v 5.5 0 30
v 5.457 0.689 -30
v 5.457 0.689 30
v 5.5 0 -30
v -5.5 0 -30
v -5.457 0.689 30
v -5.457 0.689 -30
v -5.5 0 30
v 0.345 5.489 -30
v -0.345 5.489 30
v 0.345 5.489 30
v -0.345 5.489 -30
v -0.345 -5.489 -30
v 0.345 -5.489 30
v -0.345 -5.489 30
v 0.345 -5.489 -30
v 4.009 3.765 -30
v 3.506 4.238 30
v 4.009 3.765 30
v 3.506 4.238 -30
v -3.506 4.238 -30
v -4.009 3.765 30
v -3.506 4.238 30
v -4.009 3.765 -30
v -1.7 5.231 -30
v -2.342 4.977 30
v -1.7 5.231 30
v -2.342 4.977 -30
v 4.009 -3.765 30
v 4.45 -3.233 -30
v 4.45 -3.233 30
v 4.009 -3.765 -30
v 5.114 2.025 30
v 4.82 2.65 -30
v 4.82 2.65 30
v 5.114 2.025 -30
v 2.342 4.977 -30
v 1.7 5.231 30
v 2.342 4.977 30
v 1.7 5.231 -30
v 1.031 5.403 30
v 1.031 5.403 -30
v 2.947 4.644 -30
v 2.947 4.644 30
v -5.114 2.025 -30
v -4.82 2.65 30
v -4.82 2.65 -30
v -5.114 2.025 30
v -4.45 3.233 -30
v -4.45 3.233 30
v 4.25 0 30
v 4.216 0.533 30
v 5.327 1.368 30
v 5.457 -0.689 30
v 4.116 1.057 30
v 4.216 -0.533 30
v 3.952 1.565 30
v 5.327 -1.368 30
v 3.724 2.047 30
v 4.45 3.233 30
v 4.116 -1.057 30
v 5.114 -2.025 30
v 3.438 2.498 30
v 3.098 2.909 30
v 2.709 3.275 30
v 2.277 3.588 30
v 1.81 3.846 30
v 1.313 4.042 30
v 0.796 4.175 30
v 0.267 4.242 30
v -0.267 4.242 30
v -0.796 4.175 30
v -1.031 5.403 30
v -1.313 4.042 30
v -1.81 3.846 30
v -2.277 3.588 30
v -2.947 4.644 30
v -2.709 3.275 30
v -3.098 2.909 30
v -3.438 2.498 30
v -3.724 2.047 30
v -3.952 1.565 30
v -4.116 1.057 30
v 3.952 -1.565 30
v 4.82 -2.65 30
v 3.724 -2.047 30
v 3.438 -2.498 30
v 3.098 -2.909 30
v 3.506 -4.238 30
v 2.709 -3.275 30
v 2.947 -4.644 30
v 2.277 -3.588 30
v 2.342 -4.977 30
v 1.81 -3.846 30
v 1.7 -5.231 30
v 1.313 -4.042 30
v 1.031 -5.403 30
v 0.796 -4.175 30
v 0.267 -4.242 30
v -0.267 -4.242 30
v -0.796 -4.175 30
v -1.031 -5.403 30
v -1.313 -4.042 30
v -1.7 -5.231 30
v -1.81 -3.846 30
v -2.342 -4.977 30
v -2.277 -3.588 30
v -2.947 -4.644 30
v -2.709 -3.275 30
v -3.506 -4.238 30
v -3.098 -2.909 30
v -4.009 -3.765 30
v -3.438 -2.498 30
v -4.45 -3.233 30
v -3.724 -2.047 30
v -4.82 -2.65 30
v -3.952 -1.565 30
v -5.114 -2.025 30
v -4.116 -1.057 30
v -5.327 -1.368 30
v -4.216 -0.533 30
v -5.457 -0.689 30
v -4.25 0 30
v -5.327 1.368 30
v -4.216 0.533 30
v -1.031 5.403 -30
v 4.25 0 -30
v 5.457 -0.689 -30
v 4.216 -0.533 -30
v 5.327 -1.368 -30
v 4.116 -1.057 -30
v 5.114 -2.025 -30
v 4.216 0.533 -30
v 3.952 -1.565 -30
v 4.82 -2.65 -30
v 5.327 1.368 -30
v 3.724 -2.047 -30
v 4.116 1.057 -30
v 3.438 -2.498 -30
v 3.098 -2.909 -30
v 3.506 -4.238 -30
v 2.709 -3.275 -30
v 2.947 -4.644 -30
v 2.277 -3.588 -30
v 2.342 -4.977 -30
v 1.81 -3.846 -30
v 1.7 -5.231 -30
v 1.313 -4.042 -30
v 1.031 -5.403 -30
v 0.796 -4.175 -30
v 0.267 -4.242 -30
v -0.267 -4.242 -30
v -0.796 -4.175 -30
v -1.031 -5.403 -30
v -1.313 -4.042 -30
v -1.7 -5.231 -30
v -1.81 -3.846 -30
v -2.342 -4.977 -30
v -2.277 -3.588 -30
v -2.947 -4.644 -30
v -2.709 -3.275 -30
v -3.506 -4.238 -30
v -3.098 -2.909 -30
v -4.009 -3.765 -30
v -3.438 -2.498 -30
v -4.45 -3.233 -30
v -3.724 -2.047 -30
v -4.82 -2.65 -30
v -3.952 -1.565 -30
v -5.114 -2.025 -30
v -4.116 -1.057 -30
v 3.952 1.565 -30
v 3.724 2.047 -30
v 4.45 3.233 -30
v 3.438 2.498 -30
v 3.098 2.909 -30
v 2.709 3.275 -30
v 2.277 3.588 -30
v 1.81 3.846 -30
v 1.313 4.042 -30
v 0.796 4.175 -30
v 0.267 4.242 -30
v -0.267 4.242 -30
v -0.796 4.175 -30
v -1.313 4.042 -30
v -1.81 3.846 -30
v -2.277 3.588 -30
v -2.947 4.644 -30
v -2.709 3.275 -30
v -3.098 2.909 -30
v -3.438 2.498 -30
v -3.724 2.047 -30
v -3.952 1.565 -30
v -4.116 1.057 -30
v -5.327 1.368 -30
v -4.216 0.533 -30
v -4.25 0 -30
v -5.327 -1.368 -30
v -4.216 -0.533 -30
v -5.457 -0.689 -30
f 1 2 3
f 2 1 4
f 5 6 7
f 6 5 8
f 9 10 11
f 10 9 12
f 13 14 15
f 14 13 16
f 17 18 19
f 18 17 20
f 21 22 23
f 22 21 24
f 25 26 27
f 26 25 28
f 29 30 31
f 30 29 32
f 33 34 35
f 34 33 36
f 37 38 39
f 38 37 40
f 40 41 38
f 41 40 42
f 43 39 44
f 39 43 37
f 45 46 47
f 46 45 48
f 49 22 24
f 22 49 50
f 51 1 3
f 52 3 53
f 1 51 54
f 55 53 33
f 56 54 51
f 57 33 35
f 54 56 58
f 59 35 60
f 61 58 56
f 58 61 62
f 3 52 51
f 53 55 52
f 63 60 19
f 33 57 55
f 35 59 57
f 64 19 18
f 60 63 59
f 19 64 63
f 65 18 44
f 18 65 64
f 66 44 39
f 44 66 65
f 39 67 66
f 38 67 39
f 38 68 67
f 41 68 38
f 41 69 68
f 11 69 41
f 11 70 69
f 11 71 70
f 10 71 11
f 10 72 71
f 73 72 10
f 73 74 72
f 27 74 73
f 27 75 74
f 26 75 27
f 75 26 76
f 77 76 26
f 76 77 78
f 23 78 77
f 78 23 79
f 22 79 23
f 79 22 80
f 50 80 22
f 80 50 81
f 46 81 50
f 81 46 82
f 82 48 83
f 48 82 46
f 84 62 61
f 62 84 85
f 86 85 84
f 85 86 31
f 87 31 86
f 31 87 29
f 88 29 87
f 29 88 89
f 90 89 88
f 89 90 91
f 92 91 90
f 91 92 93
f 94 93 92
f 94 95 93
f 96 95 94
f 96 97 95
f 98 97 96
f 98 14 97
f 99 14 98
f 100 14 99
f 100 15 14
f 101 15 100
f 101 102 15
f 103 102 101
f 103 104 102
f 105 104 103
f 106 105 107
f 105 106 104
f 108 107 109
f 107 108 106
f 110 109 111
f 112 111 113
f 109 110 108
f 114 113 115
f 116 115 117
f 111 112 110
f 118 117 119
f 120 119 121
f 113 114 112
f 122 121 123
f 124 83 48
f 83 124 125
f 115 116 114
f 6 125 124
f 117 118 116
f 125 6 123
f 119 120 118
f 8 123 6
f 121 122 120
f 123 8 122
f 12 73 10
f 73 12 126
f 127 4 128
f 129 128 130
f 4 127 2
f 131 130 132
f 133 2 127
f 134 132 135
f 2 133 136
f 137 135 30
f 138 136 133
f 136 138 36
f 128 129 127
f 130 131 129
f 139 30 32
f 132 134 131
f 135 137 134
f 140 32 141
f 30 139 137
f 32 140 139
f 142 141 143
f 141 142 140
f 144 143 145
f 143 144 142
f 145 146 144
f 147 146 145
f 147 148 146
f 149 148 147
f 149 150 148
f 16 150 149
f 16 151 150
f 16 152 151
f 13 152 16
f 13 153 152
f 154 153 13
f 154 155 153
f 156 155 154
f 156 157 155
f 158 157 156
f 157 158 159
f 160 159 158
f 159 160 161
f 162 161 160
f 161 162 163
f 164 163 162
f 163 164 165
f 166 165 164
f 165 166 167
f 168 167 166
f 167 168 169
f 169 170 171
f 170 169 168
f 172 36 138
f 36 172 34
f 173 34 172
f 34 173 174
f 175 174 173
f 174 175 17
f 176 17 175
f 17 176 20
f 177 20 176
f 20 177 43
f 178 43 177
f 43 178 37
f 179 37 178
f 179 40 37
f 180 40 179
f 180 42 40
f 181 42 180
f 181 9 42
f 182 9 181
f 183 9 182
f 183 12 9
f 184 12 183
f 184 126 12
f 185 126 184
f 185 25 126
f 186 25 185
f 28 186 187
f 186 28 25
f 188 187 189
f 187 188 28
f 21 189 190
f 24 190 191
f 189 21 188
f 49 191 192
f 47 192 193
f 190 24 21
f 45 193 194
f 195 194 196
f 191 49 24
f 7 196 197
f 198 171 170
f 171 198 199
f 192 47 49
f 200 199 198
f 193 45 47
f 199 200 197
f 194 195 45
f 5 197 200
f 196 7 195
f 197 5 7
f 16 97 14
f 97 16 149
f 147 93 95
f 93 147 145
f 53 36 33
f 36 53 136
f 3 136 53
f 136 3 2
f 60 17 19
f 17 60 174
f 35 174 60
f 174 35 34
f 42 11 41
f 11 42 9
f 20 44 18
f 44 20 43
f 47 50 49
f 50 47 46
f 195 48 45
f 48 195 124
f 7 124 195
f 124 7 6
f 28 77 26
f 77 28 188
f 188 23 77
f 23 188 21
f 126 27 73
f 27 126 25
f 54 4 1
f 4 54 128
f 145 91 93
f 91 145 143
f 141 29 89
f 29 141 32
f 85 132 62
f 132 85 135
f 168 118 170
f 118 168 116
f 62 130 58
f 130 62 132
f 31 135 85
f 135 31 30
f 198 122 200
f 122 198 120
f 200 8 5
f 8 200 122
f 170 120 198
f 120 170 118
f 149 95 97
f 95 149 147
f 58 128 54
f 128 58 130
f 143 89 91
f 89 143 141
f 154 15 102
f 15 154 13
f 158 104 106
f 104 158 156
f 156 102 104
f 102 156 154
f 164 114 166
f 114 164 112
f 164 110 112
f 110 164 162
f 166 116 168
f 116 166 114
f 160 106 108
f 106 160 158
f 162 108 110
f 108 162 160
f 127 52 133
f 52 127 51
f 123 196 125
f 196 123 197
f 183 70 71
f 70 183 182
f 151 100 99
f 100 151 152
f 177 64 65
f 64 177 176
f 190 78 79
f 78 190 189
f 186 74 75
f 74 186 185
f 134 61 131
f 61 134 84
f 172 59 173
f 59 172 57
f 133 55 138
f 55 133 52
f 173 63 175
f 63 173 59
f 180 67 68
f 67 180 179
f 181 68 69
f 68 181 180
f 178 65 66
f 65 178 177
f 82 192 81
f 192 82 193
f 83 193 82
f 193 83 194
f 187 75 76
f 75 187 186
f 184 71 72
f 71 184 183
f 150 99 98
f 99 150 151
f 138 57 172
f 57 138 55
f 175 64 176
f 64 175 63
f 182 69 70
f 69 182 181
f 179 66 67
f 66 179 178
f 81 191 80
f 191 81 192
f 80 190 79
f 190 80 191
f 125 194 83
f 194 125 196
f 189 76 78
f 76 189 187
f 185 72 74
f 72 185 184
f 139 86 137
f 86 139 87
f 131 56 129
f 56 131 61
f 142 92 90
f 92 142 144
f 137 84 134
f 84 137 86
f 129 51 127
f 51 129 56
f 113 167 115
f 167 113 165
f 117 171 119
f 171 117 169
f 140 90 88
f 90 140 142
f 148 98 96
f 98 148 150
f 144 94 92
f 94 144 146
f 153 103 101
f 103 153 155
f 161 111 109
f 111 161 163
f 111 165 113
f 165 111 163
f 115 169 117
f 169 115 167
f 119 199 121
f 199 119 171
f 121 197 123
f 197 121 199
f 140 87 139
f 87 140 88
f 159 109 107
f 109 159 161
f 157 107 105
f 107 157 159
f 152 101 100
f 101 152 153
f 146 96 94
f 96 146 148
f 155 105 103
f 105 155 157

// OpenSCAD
$fn = 50;


difference() {
	union() {
		translate(v = [0, 0, -30.0000000000]) {
			cylinder(h = 60, r = 5.5000000000);
		}
	}
	union() {
		translate(v = [0, 0, -100.0000000000]) {
			cylinder(h = 200, r = 4.2500000000);
		}
	}
}
